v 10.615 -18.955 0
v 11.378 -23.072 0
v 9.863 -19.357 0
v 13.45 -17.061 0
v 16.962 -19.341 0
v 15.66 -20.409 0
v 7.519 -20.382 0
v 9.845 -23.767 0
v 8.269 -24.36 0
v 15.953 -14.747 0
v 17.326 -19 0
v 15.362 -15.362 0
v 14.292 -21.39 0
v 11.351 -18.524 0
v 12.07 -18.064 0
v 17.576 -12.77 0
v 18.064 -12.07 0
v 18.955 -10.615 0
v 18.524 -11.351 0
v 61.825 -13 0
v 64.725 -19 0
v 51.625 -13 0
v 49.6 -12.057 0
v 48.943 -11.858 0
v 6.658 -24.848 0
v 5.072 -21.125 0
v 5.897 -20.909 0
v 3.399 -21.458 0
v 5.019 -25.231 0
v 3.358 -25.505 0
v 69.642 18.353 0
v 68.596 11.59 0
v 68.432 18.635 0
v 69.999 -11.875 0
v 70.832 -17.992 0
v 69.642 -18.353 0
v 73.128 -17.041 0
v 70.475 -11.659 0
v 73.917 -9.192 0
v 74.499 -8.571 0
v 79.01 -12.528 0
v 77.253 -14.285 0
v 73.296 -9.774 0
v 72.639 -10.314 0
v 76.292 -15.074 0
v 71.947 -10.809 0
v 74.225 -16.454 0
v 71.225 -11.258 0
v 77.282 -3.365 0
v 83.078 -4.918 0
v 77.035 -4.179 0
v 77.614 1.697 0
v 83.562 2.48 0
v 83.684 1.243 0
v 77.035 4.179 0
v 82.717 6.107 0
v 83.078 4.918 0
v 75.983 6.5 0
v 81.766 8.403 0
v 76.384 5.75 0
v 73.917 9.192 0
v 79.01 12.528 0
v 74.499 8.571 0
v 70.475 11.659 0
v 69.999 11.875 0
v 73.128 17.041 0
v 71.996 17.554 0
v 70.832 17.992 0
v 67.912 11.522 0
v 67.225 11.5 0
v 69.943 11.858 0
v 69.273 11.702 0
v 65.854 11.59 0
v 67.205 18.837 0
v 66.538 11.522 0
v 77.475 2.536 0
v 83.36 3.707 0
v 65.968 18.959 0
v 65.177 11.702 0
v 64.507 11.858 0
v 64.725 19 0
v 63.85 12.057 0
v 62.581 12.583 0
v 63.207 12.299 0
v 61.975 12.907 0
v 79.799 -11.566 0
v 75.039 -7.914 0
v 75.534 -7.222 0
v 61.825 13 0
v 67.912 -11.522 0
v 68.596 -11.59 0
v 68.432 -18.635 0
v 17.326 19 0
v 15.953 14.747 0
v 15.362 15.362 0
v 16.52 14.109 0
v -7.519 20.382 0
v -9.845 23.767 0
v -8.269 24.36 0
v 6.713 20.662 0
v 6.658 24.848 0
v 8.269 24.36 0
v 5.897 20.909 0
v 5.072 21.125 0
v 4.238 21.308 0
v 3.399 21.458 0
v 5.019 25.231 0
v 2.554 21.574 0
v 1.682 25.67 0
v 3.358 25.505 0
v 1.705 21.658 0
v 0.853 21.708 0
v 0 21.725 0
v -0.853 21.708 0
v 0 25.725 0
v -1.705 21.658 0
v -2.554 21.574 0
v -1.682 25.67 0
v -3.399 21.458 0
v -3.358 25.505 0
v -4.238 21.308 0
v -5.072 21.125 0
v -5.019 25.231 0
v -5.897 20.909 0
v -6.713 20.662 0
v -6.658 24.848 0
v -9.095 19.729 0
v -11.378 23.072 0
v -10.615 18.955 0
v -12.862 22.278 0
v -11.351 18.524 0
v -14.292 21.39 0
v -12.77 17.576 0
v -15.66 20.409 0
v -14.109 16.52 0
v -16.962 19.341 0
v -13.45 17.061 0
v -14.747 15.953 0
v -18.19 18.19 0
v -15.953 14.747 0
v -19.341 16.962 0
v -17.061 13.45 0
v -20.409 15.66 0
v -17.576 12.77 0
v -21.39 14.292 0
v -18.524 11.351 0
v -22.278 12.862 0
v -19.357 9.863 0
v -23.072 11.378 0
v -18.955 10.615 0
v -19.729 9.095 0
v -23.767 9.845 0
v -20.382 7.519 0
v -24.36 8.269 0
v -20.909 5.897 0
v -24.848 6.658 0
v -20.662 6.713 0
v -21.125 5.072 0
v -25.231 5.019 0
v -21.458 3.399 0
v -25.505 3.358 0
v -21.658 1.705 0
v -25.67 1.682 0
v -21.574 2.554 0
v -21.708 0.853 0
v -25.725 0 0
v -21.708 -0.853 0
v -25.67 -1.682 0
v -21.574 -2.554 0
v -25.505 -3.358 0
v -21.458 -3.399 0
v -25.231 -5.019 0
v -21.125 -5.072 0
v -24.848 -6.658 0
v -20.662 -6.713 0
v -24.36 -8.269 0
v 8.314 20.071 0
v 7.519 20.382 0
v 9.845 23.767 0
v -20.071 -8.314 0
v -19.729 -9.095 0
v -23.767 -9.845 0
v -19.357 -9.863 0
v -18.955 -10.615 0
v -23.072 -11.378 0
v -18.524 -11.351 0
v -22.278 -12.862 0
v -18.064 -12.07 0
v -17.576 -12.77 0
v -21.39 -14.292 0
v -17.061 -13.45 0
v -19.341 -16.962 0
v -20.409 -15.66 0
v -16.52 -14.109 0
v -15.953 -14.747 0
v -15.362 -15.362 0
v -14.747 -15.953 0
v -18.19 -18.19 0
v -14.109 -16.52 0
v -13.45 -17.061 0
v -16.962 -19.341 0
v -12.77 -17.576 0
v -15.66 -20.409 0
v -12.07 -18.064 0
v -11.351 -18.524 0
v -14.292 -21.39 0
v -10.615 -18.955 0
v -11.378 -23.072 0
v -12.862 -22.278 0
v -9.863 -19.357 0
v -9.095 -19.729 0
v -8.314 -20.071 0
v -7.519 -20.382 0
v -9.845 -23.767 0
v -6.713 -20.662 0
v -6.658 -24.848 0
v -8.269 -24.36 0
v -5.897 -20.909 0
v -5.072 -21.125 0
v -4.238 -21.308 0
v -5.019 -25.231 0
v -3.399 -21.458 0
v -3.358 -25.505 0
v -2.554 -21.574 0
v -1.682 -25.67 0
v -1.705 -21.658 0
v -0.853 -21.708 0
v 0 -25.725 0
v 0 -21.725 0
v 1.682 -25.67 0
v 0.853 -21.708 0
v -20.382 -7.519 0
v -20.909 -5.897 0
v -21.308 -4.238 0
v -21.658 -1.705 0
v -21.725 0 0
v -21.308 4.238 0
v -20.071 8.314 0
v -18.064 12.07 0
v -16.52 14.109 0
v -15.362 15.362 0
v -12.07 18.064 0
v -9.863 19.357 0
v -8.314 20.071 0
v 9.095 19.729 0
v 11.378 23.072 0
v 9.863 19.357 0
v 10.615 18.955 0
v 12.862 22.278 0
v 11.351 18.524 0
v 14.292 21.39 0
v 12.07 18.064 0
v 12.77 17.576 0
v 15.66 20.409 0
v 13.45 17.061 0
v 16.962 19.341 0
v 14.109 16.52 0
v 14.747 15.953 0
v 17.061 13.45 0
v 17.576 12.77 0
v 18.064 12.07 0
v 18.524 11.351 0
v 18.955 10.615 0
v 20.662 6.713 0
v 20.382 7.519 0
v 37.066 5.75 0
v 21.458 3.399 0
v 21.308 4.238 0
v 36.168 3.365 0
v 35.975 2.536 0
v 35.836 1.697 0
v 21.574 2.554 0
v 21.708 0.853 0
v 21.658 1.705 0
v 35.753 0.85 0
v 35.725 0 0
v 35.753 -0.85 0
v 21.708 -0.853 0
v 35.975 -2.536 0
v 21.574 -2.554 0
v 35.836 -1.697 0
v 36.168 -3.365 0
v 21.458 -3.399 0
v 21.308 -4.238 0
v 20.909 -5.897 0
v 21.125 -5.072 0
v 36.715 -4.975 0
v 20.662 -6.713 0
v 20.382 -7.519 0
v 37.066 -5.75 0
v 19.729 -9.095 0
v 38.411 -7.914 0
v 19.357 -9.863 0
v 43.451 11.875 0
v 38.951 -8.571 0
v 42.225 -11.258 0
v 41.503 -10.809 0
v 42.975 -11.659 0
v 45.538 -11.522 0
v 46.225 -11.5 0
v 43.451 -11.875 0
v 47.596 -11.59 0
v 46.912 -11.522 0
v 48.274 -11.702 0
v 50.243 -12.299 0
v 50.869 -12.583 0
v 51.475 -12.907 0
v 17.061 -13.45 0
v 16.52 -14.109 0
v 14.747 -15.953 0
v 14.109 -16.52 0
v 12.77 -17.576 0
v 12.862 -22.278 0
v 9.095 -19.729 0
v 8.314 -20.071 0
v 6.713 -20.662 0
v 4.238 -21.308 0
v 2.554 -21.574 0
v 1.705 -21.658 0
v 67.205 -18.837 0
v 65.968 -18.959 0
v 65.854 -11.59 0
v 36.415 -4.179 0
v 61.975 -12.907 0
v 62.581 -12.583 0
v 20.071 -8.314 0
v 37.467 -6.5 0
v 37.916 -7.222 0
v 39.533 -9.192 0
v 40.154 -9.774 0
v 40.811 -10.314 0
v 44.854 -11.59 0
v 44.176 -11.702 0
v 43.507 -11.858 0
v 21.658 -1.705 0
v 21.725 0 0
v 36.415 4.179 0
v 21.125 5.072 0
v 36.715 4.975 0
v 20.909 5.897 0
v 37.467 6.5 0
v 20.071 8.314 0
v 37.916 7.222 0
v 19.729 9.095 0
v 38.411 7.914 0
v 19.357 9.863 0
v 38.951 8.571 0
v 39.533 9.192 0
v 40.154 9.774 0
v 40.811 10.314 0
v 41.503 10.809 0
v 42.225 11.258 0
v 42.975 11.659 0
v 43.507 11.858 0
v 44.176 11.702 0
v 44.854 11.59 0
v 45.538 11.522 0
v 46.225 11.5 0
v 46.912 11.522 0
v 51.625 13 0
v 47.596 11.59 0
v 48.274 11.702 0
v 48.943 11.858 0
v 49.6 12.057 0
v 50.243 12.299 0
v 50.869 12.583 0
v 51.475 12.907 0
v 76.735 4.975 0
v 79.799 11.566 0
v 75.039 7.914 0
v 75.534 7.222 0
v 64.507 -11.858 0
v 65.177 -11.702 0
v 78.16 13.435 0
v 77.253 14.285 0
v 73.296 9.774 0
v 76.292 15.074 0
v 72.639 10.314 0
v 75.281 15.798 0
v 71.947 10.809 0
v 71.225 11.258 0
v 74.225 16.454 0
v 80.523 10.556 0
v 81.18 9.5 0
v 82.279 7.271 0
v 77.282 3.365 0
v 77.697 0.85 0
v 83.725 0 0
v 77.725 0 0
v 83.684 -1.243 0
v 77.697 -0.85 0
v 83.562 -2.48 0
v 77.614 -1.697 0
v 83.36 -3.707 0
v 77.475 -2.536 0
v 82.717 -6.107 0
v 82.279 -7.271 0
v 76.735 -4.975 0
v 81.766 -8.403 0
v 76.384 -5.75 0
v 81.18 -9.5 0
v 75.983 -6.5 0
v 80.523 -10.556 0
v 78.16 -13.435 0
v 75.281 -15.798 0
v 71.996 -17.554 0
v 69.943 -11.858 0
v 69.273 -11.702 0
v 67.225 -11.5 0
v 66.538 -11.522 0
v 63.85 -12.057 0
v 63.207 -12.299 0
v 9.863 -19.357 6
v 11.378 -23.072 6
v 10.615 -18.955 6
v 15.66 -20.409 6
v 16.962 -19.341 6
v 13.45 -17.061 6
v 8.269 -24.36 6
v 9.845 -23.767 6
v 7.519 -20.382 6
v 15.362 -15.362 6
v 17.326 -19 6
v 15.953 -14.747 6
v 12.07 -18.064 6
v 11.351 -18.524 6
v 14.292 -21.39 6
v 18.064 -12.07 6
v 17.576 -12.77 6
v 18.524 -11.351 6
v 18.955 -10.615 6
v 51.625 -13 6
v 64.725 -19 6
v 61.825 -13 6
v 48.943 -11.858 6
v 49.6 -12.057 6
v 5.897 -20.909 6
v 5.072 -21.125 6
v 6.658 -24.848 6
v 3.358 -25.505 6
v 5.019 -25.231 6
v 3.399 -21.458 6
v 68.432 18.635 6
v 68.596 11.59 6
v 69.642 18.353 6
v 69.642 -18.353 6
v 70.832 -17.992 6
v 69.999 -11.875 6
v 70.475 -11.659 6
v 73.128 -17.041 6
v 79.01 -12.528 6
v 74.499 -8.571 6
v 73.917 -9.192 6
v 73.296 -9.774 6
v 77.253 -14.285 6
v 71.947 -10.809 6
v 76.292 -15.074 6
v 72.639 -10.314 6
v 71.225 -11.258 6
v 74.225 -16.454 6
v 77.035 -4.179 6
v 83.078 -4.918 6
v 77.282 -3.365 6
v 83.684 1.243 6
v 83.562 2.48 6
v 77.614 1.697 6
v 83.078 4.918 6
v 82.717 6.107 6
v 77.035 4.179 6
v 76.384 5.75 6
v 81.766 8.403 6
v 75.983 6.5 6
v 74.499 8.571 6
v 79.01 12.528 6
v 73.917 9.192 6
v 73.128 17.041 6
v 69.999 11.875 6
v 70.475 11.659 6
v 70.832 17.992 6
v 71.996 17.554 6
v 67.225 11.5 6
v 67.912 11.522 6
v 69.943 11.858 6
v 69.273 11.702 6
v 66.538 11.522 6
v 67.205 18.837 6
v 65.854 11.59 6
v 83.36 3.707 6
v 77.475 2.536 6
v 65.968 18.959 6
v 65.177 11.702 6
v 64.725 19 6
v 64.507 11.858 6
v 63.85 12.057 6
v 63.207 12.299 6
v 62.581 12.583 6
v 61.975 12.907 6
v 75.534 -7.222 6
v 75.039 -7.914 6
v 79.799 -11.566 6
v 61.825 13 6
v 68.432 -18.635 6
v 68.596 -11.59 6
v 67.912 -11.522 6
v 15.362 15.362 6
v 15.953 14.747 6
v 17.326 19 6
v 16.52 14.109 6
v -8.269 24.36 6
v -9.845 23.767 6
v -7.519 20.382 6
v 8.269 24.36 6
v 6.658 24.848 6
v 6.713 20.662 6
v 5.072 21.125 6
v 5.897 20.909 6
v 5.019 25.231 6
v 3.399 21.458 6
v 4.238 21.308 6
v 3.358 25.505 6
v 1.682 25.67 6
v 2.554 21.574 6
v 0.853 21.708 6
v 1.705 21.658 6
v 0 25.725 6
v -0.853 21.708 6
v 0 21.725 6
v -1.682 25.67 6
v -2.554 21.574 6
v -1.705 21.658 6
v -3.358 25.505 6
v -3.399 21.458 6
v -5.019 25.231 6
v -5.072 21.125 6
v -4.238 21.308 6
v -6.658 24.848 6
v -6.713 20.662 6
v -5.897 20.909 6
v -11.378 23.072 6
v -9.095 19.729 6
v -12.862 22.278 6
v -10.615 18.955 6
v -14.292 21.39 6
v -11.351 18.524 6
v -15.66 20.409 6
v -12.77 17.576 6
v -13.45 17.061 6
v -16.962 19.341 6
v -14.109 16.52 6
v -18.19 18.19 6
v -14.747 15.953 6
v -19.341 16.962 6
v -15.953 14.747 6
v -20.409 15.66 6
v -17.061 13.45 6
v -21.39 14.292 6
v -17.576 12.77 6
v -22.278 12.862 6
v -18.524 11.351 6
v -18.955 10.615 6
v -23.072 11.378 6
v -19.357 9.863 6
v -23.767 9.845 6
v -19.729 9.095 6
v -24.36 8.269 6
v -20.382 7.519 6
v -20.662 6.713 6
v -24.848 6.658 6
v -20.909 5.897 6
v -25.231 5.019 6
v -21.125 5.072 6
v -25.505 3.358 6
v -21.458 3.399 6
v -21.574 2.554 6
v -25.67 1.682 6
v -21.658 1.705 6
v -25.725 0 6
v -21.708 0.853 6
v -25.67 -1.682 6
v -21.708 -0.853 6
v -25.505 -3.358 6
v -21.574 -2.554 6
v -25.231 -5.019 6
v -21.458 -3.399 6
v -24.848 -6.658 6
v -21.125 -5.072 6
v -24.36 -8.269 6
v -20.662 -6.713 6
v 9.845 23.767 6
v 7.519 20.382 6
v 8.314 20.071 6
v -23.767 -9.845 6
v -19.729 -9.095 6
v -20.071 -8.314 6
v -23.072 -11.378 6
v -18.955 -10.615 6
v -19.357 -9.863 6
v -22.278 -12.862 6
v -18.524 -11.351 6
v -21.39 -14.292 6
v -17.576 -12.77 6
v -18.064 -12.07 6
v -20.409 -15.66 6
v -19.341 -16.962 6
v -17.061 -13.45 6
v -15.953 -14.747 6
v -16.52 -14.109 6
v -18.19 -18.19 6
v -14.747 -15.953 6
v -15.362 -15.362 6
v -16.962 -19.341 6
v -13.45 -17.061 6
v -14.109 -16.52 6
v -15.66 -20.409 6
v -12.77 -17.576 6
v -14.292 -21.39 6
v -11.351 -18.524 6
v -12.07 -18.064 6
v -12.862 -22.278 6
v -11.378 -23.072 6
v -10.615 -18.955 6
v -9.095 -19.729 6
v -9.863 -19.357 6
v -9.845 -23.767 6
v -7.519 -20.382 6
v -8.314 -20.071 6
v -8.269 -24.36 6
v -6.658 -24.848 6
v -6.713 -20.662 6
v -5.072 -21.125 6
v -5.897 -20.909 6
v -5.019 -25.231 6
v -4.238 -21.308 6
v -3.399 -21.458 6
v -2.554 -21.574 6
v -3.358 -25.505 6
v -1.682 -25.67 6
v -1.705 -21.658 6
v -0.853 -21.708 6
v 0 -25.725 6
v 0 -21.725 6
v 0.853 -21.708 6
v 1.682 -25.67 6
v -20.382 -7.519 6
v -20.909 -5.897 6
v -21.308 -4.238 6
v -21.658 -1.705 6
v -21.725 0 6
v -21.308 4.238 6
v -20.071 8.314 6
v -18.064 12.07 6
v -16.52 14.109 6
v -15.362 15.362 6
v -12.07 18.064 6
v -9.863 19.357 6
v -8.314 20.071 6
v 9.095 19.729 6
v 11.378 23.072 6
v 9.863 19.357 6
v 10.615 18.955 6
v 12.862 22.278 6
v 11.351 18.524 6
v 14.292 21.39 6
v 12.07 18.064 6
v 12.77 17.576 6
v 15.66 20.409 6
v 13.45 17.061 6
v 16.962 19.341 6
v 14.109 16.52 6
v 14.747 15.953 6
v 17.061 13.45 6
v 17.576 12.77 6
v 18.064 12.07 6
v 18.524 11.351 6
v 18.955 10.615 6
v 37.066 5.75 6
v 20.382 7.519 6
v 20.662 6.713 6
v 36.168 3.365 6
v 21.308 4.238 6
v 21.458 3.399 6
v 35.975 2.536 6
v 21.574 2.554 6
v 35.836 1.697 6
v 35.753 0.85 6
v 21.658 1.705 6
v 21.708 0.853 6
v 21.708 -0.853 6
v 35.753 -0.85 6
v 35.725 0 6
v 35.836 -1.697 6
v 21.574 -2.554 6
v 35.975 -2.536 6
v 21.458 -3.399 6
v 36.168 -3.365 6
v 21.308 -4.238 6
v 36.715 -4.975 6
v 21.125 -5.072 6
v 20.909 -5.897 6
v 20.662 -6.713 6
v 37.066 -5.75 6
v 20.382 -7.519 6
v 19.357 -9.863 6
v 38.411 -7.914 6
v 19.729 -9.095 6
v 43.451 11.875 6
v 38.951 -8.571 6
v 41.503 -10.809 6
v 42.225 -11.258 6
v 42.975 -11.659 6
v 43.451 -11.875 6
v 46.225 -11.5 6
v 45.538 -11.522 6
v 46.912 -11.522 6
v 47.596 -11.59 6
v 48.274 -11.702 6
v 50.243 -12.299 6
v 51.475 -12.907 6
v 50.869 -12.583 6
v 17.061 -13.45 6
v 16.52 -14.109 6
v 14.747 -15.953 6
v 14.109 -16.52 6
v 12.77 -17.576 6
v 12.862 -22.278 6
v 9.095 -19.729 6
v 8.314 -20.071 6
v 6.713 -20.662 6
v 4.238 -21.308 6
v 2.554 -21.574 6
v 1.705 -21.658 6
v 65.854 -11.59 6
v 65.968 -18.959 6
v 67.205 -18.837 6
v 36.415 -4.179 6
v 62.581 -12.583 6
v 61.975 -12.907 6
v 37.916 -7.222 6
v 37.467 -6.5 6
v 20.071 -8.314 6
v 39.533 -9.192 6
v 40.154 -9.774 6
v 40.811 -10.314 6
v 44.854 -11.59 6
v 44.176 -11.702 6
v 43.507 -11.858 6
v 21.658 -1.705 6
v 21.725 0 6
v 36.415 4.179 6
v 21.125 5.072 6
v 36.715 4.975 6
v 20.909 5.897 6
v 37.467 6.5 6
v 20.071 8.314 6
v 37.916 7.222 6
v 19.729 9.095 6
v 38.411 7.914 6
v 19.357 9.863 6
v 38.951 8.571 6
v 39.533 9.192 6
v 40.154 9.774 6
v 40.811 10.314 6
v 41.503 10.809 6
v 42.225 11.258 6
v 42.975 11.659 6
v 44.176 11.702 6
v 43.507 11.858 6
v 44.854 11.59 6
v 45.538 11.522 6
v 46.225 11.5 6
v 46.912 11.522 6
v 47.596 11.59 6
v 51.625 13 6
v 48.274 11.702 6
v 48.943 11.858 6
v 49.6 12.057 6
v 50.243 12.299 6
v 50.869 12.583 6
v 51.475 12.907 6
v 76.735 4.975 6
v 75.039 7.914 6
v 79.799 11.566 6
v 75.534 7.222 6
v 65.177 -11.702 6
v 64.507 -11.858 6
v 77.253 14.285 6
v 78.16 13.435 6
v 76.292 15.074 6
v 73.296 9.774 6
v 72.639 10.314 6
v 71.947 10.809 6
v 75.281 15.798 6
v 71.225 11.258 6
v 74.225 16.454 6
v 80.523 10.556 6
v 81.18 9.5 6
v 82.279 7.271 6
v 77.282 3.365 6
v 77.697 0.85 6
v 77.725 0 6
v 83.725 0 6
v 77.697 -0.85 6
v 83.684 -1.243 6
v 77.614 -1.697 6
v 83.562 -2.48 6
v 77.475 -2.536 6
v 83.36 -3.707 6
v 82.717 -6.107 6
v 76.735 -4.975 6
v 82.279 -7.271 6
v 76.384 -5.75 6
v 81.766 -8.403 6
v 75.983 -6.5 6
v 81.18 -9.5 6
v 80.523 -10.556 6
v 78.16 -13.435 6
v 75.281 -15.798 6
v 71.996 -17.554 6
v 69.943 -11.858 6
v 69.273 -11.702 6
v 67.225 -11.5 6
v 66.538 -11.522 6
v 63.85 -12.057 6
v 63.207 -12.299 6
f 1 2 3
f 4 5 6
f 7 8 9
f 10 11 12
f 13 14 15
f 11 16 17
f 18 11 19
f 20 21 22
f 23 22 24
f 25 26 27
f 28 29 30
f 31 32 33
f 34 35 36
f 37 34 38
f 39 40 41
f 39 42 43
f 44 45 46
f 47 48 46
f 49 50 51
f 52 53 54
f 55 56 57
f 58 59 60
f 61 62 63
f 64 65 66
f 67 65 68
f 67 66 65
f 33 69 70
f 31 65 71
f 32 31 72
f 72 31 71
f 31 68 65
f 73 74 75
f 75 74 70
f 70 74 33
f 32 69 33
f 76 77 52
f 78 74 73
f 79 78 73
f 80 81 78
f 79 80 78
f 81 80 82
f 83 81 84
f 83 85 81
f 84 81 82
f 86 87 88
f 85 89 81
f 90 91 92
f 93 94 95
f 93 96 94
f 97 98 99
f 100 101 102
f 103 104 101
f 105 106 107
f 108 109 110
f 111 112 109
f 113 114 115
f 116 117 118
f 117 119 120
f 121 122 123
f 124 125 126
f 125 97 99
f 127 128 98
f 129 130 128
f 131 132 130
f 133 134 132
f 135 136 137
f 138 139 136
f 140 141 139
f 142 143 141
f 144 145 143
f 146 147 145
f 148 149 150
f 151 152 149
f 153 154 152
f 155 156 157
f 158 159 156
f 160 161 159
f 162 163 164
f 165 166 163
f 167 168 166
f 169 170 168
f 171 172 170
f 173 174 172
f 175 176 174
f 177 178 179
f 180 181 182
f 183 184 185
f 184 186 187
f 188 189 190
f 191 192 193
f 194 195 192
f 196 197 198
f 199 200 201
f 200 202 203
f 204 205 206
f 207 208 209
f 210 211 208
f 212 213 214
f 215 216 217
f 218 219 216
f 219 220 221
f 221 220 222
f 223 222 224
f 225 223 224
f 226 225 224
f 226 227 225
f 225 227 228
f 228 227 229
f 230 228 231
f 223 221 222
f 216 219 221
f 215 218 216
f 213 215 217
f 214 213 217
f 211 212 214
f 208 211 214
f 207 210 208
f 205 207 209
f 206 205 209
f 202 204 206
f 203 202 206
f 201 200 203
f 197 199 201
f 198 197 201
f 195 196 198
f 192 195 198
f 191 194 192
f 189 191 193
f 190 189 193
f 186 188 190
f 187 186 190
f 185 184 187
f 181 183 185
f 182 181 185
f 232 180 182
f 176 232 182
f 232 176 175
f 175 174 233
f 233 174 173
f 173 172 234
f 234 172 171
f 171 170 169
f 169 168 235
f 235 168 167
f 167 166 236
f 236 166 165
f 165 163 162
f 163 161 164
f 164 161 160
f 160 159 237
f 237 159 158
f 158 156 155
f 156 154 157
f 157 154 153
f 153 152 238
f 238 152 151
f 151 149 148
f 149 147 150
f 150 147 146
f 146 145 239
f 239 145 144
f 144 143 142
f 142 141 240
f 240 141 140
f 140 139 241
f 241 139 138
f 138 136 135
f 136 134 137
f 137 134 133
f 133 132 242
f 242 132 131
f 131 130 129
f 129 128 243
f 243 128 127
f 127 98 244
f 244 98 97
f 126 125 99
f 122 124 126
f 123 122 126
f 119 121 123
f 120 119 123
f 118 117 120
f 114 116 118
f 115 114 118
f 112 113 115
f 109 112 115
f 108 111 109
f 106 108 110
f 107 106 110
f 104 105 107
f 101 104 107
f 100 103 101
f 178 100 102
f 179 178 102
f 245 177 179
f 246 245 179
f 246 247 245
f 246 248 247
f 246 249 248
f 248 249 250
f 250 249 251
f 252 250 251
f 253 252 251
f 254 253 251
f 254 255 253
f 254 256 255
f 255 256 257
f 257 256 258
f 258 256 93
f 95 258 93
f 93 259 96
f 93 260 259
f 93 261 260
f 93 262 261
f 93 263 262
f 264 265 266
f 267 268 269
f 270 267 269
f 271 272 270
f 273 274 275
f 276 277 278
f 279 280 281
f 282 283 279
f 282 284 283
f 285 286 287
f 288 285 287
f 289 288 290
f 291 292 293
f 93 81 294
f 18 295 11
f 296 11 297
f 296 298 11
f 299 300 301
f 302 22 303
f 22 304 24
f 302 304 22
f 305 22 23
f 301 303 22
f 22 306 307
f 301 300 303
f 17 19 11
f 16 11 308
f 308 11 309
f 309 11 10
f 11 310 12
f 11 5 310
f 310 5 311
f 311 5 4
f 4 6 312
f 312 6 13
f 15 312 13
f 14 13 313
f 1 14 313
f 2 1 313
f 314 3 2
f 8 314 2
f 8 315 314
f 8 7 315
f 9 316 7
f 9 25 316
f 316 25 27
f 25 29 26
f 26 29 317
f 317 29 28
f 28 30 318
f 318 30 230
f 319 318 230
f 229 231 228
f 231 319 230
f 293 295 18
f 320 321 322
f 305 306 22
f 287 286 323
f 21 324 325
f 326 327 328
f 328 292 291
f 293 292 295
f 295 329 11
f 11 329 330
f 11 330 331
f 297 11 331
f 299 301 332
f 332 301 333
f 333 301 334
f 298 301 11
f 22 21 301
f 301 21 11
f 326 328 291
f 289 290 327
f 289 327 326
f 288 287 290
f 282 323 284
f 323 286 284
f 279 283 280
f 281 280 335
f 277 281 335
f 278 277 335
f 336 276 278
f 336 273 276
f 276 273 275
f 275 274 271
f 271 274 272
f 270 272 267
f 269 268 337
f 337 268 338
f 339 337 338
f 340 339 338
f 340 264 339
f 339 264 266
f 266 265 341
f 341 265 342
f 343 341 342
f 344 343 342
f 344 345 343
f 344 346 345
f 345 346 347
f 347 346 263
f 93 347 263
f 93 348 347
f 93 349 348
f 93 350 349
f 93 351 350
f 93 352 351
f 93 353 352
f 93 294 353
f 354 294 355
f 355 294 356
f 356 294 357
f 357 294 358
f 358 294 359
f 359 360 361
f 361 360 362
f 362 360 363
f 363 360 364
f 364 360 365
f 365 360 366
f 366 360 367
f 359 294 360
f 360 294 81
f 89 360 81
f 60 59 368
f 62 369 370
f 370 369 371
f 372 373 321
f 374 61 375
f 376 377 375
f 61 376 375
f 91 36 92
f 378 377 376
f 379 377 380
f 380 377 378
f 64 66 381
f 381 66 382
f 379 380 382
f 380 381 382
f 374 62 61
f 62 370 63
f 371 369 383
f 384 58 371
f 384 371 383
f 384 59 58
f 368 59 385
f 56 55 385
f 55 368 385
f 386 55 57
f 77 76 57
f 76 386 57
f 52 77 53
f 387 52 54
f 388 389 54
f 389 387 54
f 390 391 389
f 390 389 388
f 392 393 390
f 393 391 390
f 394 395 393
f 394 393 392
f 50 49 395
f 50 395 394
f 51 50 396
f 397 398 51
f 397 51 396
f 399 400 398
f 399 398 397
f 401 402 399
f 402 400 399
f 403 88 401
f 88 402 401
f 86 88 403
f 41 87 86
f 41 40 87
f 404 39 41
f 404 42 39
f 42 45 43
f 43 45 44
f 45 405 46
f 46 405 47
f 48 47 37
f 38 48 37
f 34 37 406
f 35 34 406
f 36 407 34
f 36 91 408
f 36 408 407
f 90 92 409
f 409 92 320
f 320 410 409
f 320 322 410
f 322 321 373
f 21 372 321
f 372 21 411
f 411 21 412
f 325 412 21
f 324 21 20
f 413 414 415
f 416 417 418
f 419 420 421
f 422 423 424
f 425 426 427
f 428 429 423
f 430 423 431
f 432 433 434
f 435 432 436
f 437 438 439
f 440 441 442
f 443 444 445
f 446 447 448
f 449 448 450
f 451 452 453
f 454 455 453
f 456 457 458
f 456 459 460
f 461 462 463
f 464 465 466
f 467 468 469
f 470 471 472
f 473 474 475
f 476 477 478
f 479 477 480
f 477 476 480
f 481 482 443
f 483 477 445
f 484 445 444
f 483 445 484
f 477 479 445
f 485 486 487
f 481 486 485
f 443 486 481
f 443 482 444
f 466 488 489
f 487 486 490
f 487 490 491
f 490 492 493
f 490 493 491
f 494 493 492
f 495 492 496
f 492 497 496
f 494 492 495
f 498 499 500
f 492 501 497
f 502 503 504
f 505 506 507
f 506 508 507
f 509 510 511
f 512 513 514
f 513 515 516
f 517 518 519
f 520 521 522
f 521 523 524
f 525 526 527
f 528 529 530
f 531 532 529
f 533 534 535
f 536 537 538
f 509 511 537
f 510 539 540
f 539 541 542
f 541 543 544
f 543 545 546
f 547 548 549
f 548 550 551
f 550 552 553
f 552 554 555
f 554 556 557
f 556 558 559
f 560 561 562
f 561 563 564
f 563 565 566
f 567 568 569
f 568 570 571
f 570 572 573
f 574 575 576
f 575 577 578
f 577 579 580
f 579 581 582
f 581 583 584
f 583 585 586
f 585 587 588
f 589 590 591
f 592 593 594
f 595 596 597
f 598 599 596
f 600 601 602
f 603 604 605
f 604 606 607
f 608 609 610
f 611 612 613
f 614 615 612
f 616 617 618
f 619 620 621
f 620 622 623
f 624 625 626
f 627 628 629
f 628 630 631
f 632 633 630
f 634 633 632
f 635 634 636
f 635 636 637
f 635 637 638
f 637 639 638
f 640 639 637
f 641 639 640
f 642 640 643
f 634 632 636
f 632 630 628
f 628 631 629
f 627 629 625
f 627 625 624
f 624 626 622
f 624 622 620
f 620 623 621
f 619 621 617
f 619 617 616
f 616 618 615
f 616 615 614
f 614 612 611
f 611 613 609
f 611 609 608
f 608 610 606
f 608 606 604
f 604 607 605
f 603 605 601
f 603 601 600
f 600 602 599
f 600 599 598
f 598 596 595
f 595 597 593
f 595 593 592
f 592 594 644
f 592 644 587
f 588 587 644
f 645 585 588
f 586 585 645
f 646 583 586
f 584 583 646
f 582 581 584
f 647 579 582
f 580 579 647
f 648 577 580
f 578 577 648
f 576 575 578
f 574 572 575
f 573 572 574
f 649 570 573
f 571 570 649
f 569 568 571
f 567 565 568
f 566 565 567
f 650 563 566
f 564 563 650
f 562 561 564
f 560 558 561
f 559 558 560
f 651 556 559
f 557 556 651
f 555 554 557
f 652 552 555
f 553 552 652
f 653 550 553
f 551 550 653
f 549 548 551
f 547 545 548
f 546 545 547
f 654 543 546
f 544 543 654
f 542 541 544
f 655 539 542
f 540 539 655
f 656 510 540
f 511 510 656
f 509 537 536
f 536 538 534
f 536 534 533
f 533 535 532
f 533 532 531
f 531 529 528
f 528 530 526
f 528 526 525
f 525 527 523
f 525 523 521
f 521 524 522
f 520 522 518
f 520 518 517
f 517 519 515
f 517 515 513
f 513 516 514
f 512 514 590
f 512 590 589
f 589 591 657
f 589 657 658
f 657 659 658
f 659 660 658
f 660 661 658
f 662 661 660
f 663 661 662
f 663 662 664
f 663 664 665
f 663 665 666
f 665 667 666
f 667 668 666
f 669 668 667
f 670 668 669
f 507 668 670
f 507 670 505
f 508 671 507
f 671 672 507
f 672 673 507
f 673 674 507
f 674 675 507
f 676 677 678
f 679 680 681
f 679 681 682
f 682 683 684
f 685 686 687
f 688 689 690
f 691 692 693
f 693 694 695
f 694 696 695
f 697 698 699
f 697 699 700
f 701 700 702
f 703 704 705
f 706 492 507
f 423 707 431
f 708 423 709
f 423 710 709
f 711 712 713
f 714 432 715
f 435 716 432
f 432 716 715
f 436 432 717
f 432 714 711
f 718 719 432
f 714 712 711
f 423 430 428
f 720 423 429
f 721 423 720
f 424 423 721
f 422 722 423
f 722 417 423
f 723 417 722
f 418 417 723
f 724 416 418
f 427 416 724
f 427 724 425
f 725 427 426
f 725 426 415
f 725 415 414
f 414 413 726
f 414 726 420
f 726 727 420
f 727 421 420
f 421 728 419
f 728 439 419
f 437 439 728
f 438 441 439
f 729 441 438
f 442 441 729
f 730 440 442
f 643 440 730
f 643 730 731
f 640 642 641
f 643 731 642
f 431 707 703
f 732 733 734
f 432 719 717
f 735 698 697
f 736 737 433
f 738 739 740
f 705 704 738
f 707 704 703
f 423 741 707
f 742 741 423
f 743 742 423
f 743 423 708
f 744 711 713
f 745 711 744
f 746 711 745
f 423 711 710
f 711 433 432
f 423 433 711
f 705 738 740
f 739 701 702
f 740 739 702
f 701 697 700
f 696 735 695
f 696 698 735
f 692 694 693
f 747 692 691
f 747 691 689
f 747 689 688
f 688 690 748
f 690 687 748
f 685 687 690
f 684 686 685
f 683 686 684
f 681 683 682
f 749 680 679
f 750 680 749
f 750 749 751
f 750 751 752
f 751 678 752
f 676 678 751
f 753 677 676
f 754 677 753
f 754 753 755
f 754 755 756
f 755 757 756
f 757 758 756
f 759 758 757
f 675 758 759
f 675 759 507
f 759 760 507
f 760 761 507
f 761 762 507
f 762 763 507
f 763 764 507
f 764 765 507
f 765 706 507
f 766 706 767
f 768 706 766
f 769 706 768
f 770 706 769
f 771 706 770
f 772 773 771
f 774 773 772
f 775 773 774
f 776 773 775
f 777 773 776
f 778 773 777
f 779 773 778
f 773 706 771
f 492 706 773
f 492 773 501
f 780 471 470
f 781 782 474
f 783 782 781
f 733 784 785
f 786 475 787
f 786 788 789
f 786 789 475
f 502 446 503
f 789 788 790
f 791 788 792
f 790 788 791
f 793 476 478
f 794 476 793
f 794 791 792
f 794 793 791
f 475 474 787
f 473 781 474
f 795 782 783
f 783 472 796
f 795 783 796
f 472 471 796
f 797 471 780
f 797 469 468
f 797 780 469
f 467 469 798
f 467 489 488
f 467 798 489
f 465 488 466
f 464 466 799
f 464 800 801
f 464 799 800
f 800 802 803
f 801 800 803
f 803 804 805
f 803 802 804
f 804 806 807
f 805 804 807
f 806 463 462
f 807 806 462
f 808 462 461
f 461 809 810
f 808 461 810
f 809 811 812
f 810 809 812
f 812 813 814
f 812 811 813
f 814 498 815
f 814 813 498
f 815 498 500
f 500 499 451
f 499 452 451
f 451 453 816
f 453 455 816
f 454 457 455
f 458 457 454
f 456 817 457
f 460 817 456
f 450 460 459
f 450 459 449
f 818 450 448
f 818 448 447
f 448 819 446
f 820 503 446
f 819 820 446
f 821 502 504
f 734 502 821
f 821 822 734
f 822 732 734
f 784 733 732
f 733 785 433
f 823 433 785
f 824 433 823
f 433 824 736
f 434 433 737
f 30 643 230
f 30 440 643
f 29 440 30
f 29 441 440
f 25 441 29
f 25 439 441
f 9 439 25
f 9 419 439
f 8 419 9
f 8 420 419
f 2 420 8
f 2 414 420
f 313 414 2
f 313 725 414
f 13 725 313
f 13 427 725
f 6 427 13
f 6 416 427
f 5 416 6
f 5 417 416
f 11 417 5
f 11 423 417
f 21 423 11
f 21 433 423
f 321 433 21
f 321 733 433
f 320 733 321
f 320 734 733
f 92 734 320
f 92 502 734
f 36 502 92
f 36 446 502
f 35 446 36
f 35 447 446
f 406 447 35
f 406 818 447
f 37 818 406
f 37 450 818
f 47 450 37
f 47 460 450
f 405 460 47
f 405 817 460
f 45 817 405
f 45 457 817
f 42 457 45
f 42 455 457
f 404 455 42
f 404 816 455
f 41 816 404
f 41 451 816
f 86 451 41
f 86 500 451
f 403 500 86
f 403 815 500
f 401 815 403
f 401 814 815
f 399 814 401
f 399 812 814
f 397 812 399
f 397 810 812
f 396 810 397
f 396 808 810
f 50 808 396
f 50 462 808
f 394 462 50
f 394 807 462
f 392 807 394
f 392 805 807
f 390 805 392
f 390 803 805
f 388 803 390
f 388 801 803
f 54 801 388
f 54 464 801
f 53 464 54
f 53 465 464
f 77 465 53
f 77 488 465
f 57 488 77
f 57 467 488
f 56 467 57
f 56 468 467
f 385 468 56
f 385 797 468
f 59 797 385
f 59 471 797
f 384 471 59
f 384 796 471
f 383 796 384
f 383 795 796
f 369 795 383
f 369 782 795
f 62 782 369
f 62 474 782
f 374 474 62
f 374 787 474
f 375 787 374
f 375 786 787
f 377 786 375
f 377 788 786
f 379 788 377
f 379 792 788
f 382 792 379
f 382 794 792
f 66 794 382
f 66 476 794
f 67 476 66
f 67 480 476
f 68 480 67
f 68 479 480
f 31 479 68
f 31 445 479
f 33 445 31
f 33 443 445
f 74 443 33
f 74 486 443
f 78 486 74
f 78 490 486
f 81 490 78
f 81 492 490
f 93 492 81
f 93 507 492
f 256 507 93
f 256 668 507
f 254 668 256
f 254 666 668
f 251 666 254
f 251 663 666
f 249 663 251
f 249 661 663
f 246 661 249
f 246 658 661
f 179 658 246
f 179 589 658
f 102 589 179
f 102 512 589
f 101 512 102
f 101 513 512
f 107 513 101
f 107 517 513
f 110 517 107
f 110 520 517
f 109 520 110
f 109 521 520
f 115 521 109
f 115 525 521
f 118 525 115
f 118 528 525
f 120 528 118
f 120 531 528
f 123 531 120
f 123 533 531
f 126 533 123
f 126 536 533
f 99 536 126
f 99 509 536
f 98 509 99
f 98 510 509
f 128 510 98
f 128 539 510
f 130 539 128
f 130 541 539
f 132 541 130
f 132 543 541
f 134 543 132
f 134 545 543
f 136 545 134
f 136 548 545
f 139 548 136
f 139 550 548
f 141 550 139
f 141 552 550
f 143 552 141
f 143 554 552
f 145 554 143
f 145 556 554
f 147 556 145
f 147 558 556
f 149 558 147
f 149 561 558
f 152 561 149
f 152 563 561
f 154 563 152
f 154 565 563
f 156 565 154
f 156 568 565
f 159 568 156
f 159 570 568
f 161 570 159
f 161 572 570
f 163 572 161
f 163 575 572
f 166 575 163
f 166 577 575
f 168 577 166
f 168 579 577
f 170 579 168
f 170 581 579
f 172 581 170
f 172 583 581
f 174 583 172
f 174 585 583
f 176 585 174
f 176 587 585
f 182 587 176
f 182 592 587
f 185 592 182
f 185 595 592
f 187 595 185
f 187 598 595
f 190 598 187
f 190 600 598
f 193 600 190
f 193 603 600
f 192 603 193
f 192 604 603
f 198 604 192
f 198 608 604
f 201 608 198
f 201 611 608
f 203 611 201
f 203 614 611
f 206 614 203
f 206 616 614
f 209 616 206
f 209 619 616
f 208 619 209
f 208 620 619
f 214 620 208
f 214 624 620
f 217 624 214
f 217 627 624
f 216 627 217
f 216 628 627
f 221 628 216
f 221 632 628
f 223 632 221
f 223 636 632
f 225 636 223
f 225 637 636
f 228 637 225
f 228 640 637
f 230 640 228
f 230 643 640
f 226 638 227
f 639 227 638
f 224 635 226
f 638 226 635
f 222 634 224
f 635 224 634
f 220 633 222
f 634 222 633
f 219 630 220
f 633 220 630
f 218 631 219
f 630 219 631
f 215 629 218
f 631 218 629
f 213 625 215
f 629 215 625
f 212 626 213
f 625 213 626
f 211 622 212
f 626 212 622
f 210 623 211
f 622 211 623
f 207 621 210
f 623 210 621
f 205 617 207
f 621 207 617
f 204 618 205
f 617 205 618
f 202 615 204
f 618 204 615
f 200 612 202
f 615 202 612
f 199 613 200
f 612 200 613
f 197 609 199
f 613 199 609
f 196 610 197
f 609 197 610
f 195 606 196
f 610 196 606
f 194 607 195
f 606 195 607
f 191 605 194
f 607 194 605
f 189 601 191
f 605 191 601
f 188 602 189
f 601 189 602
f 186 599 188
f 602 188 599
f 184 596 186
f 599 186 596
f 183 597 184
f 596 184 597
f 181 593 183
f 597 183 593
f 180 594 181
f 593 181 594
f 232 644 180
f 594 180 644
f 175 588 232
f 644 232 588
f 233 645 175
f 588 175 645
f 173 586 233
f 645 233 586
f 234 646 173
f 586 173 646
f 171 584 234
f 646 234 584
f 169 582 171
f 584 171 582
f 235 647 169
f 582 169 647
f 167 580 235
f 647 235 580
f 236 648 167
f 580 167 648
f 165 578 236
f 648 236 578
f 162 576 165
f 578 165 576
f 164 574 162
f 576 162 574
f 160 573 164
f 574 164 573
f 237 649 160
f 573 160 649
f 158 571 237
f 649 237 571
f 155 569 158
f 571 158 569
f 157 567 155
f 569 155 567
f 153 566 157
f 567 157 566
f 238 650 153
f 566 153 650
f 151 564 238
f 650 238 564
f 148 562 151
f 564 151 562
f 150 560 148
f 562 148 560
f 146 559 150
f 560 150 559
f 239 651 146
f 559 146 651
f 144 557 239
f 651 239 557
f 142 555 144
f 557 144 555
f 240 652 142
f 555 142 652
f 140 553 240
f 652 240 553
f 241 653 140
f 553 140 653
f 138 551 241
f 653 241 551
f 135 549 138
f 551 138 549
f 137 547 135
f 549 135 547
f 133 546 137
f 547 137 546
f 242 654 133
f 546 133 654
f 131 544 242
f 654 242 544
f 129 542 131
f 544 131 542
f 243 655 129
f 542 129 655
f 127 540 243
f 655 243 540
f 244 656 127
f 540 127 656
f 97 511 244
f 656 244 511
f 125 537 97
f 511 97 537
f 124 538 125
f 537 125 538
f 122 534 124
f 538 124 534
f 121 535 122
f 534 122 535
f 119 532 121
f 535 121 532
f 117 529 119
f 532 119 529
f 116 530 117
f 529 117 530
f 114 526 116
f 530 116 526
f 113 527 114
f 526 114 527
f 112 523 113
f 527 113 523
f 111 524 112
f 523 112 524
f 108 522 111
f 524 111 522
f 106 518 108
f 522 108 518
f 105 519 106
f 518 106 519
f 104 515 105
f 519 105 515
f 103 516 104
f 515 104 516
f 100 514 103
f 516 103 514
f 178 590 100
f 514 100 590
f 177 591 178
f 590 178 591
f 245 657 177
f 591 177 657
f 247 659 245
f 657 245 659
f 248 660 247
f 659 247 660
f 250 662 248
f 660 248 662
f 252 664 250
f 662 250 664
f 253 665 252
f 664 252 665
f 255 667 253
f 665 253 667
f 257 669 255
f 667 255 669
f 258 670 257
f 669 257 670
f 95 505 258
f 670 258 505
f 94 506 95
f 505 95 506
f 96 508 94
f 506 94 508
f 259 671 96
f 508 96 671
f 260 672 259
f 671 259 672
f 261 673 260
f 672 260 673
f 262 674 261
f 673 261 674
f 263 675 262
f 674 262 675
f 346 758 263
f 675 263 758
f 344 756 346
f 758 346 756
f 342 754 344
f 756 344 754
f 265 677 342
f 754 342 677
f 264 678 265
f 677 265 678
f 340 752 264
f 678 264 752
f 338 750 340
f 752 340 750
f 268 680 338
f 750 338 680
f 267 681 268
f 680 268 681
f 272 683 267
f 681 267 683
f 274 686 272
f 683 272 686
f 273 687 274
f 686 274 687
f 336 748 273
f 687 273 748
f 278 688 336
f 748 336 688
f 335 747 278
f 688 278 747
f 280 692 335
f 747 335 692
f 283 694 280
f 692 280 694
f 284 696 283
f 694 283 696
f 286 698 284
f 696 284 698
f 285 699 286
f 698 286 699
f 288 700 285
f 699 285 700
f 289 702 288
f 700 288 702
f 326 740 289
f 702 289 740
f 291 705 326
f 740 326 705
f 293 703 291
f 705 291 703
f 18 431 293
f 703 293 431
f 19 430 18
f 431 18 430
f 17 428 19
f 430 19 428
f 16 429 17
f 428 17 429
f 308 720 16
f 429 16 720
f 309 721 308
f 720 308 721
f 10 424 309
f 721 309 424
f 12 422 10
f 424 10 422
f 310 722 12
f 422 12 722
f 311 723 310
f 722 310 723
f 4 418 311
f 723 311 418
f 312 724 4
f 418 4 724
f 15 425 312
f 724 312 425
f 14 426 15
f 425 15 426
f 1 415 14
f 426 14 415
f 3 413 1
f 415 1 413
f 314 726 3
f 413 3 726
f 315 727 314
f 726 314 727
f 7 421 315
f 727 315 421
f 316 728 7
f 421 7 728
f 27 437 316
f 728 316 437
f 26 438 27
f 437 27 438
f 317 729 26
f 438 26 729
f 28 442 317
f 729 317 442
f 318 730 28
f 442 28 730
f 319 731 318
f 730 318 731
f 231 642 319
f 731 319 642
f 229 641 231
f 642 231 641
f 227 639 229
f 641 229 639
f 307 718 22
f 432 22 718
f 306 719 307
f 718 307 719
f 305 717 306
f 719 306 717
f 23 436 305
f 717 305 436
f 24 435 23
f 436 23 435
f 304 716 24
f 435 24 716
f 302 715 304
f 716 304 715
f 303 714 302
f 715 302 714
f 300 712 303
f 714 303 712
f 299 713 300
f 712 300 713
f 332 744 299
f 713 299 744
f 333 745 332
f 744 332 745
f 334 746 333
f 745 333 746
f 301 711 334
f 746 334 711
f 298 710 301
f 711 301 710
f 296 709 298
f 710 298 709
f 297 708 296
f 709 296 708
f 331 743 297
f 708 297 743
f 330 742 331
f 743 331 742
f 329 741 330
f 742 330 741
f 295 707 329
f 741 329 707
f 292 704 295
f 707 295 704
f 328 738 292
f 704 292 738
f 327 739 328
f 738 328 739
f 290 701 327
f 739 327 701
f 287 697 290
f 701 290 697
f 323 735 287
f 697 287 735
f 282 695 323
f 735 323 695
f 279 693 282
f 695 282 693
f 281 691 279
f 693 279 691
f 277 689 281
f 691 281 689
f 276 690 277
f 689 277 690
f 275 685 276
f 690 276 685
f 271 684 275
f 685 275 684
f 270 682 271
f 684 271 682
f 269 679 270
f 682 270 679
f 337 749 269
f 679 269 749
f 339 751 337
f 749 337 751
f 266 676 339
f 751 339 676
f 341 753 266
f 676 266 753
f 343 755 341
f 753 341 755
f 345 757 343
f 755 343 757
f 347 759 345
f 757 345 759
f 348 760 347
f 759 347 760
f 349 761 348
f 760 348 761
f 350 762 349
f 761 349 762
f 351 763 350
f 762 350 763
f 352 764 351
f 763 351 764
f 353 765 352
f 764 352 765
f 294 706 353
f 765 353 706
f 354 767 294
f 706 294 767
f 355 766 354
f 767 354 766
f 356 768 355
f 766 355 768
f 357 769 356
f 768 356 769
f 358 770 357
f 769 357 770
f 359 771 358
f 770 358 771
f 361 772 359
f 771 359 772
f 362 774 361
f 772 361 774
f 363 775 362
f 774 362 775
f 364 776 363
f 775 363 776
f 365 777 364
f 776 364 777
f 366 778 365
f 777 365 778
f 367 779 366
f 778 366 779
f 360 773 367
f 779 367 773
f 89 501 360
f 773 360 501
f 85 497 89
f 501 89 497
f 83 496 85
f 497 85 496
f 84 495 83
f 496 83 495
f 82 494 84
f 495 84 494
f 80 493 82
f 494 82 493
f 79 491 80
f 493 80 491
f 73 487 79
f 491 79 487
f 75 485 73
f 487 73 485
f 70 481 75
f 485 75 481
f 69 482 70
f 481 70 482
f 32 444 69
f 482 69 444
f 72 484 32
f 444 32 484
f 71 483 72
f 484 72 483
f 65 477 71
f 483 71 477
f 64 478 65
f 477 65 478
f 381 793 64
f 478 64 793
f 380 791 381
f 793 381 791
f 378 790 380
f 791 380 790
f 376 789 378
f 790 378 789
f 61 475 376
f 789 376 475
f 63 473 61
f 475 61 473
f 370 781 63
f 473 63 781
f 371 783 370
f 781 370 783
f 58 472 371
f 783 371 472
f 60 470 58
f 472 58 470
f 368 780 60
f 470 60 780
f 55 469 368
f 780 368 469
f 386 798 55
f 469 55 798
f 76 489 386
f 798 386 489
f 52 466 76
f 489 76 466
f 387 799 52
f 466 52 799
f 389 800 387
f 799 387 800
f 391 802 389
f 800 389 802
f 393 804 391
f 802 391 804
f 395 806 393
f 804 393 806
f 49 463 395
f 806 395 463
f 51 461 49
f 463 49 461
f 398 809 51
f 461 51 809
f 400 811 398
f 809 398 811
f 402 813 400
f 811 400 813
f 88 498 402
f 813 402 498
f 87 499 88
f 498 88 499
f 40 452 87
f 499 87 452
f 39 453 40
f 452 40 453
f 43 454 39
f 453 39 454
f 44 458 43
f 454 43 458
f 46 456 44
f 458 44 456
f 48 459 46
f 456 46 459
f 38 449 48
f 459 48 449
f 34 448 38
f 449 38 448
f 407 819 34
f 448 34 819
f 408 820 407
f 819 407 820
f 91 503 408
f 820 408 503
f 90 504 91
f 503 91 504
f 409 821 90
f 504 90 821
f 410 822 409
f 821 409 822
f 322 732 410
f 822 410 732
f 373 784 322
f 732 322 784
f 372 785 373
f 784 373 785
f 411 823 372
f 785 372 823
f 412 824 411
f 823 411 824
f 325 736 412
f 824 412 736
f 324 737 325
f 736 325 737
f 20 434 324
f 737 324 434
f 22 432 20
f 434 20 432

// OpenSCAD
// TEMPLATE: ring-and-loop carry handle — a ring that sits around a neck (bottle, jar, cable) with a finger loop; optional finger scallops
// Interfaces: neck_id (the neck's outer diameter) + clearance -> bore. Origin at the bore axis, ring bottom on z = 0.
// Load path: loop -> tangent bridges -> ring. Print flat (ring on bed) so the carry load runs along the layers.

/* [Interface] */
neck_id = 43.2;          // [20:0.1:90]
clearance = 0.25;        // [0:0.05:0.8]
ring_height = 6;         // [3:0.5:20]
ring_wall = 4;           // [2:0.5:10]

/* [Loop] */
loop_inner_w = 42;       // [25:1:80]
loop_inner_h = 26;       // [15:1:45]
loop_thick = 6;          // [4:0.5:14]
bridge_len = 4;          // [0:0.5:20]  straight bridge between ring and loop (keeps the bore closed)
fillet_r = 0;            // [0:0.5:10]  fillet where bridges meet ring and loop
scallops = true;         // finger scallops on the inside long edges
scallop_depth = 1.5;     // [0:0.25:4]

/* [Render] */
render_target = "part";  // [part, coupon, assembly]

/* [Hidden] */
$fn = 96;
bore = neck_id + clearance;
ring_od = bore + 2 * ring_wall;
loop_cx = ring_od / 2 + bridge_len + loop_inner_w / 2 + loop_thick;   // loop center on +X
loop_ow = loop_inner_w + 2 * loop_thick;
loop_oh = loop_inner_h + 2 * loop_thick;

assert(bridge_len >= 0, "bridge_len must be >= 0");
assert(loop_inner_h > 2 * scallop_depth + 10, "scallops too deep for the loop height");
echo(bore = bore, ring_od = ring_od, overall_length = ring_od + bridge_len + loop_ow);

module stadium2d(w, h) { hull() { translate([-(w - h) / 2, 0]) circle(d = h); translate([(w - h) / 2, 0]) circle(d = h); } }

module outline2d() {
    // ring + bridges + loop as a 2D union, with fillets by offset trick
    offset(r = -fillet_r) offset(r = fillet_r) union() {
        circle(d = ring_od);
        translate([loop_cx, 0]) stadium2d(loop_ow, loop_oh);
        // solid bridge from the ring to the loop, as tall as the loop, so the load path has no waist or notch
        translate([0, -loop_oh / 2]) square([loop_cx, loop_oh]);
    }
}

module openings2d() {
    circle(d = bore, $fn = 160);
    translate([loop_cx, 0]) difference() {
        stadium2d(loop_inner_w, loop_inner_h);
        if (scallops) for (s = [-1, 1]) for (i = [-1, 1])
            translate([i * loop_inner_w / 4, s * (loop_inner_h / 2 + loop_inner_w / 4 - scallop_depth)]) circle(r = loop_inner_w / 4);
    }
}

module part() {
    linear_extrude(height = ring_height) difference() { outline2d(); openings2d(); }
}

module coupon() {
    // three rings, mating feature only: clearance -0.2 / 0 / +0.2, embossed labels
    for (i = [-1, 0, 1]) translate([i * (bore + 10), 0, 0]) {
        difference() { cylinder(d = bore + i * 0.2 + 2 * 2.4, h = 3); translate([0, 0, -1]) cylinder(d = bore + i * 0.2, h = 5, $fn = 160); }
        translate([0, (bore + 2 * 2.4) / 2 + 3, 0]) linear_extrude(1) text(str(i * 0.2), size = 4, halign = "center");
    }
}

module assembly() {
    part();
    %translate([0, 0, -3]) cylinder(d = neck_id, h = ring_height + 6);
    %translate([0, 0, ring_height + 0.3]) cylinder(d = neck_id + 18, h = 3);
}

if (render_target == "part") part();
else if (render_target == "coupon") coupon();
else assembly();
